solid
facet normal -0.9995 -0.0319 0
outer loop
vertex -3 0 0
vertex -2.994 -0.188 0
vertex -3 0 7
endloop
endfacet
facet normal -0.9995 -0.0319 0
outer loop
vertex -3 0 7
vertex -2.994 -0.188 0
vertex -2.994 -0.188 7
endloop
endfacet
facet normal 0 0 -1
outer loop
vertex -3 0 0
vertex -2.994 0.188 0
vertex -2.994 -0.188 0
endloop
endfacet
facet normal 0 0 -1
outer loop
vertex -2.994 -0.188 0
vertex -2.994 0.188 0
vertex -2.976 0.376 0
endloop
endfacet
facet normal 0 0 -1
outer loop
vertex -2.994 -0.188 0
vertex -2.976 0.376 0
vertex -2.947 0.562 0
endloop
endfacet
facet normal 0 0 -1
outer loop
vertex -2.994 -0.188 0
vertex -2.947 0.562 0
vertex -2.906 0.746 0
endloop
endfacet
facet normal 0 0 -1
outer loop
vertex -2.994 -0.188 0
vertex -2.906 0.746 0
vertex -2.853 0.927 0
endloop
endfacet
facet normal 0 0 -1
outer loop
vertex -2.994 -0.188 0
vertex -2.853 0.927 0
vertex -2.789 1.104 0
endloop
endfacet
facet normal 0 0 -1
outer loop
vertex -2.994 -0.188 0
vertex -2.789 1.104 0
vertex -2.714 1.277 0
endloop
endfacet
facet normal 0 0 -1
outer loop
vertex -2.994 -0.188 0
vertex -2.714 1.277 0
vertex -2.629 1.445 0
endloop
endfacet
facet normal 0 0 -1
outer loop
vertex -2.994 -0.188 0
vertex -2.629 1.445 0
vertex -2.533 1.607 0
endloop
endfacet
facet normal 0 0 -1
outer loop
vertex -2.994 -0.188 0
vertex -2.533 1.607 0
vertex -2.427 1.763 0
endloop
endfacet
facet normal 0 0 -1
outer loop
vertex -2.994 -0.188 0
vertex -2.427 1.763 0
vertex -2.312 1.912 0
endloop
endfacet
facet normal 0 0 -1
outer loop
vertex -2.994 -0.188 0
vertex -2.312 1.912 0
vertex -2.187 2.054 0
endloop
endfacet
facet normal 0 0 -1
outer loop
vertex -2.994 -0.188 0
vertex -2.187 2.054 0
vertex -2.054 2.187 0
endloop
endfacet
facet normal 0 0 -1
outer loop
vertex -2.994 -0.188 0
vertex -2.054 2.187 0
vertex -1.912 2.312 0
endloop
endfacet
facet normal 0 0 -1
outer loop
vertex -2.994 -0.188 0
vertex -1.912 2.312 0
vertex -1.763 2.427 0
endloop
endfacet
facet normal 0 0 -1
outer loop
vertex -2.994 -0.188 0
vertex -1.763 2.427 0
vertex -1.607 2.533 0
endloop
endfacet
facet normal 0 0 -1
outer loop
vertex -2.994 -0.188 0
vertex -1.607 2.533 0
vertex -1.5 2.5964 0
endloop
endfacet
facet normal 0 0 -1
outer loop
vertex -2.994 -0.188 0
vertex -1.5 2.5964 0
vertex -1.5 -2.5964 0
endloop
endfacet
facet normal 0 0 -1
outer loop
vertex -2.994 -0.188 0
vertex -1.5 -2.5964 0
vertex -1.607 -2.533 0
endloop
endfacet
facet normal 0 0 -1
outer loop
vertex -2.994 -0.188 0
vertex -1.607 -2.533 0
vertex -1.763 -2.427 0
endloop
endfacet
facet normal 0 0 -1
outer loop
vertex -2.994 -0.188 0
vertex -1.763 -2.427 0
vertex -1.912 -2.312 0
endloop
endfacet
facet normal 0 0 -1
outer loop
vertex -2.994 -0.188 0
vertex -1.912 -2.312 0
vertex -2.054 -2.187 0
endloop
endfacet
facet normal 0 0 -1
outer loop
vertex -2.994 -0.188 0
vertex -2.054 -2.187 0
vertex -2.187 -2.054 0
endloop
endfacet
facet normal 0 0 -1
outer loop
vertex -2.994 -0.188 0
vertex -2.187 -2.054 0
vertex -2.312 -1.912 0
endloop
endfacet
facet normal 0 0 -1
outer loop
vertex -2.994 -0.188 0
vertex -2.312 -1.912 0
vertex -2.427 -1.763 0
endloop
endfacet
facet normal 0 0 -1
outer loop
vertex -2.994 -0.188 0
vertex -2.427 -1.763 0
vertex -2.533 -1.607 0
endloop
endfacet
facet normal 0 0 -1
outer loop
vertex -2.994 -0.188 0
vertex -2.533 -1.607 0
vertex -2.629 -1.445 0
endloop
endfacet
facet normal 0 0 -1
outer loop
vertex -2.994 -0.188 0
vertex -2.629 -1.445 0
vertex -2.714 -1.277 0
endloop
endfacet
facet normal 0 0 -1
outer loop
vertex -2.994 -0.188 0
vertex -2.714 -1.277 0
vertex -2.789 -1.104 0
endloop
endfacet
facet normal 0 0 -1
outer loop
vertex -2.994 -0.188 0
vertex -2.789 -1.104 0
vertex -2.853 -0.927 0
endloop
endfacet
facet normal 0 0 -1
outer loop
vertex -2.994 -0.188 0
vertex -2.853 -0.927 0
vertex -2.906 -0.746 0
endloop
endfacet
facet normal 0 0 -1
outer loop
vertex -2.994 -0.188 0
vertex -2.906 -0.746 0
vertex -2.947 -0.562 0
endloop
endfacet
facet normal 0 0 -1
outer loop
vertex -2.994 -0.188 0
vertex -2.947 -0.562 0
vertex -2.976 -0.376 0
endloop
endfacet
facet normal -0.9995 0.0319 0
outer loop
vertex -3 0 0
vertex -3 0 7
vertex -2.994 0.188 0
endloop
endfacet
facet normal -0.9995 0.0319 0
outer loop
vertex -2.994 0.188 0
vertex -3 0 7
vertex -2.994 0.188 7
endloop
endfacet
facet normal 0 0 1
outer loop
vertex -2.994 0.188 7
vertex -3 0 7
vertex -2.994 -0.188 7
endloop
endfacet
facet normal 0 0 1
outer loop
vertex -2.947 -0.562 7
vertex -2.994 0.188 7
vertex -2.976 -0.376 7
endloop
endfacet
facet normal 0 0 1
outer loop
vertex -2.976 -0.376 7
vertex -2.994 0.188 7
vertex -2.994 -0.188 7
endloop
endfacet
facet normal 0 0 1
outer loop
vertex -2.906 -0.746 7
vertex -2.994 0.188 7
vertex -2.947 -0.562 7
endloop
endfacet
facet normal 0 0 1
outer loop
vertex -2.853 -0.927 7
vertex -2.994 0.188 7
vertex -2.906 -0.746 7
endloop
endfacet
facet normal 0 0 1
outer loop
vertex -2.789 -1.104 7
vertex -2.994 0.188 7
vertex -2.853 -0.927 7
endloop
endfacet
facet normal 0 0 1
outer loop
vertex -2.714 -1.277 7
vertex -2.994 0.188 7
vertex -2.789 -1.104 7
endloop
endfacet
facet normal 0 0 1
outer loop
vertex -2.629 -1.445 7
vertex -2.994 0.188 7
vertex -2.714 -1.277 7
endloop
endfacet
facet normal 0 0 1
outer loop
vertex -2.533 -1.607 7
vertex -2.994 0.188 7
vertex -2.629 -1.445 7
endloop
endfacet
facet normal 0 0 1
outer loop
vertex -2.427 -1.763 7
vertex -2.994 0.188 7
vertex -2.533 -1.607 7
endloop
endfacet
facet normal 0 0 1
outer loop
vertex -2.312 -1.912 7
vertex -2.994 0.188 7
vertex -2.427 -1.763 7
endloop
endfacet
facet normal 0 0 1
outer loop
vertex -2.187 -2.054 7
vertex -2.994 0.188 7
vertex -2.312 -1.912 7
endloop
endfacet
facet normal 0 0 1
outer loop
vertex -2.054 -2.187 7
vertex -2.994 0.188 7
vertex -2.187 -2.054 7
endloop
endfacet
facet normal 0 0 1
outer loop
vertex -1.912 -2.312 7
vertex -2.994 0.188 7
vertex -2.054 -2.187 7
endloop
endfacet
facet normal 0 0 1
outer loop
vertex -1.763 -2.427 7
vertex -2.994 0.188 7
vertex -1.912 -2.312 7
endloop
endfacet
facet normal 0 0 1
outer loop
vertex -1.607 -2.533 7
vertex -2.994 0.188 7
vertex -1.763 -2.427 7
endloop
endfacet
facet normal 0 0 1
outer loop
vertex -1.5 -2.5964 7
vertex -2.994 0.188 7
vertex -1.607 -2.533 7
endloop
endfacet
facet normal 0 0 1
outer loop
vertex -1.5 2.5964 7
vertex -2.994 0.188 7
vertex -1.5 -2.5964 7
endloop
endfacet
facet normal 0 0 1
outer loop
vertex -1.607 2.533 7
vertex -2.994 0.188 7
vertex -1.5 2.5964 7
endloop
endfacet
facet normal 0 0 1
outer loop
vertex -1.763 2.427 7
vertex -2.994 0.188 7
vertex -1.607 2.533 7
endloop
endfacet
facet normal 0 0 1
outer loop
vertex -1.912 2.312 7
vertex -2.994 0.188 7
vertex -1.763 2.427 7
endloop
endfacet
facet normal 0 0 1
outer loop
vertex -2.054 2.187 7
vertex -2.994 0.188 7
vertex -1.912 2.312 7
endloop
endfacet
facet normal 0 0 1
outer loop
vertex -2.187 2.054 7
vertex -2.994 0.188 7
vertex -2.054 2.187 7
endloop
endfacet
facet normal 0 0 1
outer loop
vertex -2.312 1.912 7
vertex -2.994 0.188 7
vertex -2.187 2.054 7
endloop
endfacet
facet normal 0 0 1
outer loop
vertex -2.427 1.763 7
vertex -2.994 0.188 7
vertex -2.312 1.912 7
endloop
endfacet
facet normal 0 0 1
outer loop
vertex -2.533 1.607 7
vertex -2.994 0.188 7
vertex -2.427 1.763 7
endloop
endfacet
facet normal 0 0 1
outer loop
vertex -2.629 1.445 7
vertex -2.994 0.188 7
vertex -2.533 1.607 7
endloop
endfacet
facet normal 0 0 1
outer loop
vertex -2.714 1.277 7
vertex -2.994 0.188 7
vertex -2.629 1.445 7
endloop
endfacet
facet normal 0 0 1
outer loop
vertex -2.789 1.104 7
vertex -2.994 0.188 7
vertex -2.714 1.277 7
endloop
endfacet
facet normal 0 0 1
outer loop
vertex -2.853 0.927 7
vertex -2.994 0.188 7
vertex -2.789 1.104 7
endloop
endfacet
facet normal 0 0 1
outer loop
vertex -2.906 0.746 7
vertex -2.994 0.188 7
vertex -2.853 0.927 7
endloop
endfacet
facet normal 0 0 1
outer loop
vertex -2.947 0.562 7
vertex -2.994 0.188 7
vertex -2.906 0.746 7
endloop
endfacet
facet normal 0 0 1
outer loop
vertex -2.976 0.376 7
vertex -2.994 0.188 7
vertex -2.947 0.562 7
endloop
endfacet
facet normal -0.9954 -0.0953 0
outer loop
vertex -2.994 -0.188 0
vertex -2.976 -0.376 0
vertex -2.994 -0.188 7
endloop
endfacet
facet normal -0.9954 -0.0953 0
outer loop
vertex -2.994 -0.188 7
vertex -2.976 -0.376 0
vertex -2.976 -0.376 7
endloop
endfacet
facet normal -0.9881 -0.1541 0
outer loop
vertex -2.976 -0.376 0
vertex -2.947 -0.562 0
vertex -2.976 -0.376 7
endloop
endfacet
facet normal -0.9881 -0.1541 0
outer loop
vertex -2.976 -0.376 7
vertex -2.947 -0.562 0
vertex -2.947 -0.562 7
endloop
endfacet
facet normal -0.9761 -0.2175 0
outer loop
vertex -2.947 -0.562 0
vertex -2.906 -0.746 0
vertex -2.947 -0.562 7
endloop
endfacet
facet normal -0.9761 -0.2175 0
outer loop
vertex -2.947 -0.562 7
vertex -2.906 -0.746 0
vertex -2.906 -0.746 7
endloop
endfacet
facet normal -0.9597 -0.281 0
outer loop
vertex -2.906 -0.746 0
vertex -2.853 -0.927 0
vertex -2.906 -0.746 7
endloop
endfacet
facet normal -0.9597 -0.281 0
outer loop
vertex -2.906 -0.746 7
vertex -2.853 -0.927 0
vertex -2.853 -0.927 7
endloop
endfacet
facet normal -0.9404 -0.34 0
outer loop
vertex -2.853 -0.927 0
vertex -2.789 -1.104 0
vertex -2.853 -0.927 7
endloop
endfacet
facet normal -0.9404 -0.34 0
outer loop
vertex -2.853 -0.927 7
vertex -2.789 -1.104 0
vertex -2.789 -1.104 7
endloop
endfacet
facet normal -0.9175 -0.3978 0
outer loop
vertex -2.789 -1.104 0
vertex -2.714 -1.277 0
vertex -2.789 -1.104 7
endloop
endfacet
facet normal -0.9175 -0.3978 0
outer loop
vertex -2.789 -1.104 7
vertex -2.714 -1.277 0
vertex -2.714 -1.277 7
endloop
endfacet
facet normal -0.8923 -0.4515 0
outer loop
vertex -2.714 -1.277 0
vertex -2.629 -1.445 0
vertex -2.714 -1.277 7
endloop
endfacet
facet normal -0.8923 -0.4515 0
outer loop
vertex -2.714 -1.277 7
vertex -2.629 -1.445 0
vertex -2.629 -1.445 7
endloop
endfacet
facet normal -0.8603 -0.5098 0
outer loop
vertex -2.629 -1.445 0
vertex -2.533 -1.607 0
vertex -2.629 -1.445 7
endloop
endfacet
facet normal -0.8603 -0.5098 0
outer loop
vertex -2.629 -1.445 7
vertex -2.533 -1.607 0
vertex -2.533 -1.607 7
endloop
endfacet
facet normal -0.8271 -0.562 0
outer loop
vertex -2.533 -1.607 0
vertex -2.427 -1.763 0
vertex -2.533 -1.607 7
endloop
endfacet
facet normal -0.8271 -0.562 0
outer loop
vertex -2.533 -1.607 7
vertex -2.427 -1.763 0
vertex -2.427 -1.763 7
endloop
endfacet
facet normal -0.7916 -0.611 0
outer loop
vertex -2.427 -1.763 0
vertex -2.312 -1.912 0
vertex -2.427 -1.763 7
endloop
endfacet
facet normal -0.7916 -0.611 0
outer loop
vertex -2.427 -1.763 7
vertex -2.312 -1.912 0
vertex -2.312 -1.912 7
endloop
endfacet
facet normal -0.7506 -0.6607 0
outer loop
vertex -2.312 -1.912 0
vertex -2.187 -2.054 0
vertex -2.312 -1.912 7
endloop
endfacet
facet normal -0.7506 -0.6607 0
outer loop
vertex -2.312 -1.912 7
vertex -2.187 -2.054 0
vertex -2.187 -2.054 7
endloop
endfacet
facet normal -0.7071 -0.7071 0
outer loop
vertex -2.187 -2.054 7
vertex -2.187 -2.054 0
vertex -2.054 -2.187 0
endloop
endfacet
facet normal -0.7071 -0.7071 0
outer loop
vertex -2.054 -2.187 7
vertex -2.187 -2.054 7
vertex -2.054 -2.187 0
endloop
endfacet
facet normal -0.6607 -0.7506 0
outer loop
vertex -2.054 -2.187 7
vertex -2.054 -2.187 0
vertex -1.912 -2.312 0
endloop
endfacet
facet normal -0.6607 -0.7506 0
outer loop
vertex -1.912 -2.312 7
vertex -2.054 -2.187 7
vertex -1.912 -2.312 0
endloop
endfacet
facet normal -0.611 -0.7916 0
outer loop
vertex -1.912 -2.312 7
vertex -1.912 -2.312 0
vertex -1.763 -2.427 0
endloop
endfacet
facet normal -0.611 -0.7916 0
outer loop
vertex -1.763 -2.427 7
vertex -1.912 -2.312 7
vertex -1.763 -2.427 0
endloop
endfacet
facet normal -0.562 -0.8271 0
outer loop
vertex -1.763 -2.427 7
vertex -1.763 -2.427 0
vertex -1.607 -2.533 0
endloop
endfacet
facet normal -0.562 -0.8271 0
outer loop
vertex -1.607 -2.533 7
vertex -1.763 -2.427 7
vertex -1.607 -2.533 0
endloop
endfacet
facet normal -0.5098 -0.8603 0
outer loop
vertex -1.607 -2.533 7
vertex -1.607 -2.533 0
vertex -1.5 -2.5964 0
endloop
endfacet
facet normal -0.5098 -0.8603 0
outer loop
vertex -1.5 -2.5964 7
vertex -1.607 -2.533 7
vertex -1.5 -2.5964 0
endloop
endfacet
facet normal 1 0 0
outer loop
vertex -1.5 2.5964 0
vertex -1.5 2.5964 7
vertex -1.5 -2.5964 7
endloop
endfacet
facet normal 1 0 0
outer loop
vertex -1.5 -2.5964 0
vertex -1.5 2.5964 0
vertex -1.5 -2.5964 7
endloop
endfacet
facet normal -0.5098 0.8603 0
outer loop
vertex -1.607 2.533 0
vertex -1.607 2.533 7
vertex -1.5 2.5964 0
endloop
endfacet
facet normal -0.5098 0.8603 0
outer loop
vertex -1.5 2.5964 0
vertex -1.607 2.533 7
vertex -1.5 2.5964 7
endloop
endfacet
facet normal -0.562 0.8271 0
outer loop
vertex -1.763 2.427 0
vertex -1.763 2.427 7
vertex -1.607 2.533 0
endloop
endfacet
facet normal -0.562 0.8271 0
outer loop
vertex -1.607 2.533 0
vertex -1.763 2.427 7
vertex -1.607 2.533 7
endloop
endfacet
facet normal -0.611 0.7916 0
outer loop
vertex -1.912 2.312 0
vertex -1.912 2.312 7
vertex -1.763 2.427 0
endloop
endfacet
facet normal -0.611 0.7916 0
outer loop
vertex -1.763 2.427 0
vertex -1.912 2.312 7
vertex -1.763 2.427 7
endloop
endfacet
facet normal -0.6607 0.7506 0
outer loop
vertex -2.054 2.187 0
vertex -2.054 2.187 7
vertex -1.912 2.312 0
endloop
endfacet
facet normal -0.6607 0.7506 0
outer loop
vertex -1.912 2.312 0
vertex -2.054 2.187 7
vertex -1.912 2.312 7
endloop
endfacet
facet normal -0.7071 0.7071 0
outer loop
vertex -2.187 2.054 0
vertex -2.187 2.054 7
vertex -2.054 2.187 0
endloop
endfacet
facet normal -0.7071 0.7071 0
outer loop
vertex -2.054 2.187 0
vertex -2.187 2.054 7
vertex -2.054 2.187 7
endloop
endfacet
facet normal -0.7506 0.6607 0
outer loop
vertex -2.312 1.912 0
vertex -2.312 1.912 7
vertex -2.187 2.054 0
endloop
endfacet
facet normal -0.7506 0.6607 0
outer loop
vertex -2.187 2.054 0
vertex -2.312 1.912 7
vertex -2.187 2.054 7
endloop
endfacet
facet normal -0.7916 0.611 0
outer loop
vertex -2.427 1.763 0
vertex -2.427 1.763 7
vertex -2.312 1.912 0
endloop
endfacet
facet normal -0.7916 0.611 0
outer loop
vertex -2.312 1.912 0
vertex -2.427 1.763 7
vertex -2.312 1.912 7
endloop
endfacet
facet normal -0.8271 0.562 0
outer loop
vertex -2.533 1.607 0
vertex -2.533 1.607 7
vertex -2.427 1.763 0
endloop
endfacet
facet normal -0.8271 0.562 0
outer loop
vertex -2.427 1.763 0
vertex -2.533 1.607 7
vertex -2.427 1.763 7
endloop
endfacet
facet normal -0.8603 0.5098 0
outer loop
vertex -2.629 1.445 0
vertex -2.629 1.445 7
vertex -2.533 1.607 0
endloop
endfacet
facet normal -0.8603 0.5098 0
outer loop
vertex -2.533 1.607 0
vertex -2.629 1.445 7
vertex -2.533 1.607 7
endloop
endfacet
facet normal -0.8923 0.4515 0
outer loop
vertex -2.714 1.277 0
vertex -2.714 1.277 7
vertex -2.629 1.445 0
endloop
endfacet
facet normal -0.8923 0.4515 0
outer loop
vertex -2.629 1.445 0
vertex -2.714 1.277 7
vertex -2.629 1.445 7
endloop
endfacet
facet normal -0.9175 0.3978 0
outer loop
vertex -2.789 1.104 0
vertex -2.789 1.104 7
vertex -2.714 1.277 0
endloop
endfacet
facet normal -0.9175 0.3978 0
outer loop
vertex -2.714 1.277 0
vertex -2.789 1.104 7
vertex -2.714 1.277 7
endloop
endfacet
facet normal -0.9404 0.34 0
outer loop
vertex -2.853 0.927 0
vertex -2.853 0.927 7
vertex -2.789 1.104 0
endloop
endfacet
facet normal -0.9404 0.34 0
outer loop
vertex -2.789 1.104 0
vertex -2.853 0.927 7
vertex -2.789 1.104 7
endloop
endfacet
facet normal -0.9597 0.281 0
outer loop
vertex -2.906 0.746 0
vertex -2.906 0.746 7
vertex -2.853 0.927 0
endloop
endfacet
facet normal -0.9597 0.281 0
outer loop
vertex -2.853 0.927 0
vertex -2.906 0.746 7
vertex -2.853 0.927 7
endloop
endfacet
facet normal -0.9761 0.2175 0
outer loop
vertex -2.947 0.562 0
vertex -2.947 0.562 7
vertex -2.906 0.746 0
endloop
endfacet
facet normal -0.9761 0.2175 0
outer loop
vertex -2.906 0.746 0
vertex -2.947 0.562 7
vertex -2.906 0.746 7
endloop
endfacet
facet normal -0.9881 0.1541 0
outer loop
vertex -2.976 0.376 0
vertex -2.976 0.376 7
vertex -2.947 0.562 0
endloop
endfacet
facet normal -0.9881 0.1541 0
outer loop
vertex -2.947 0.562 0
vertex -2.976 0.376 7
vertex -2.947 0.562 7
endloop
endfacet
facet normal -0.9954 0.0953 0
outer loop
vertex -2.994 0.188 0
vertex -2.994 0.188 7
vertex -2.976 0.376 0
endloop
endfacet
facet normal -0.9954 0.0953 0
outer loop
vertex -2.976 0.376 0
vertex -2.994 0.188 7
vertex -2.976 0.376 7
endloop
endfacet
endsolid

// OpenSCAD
/* Spacer for CMOY amp knob
Designer: Patrick Ma
Date Started: 4/22
Date completed: 

knob: JD-50-x-5
shaft: Alps Potentiometer RK0971221Z05 
*/

module CMOY_spacer()
{
	difference()
	{
	// adds these parts
		union()
		{
			linear_extrude(height = 7, center=false)
			{
				circle(d=6, $fn=100);
			}
		}

	// cuts these parts
	#	union()
		{
			translate([-1.5,-3,-0.1])
			{
				cube([4.6,6.1,8]);
			}
		}
	}
}

CMOY_spacer();
